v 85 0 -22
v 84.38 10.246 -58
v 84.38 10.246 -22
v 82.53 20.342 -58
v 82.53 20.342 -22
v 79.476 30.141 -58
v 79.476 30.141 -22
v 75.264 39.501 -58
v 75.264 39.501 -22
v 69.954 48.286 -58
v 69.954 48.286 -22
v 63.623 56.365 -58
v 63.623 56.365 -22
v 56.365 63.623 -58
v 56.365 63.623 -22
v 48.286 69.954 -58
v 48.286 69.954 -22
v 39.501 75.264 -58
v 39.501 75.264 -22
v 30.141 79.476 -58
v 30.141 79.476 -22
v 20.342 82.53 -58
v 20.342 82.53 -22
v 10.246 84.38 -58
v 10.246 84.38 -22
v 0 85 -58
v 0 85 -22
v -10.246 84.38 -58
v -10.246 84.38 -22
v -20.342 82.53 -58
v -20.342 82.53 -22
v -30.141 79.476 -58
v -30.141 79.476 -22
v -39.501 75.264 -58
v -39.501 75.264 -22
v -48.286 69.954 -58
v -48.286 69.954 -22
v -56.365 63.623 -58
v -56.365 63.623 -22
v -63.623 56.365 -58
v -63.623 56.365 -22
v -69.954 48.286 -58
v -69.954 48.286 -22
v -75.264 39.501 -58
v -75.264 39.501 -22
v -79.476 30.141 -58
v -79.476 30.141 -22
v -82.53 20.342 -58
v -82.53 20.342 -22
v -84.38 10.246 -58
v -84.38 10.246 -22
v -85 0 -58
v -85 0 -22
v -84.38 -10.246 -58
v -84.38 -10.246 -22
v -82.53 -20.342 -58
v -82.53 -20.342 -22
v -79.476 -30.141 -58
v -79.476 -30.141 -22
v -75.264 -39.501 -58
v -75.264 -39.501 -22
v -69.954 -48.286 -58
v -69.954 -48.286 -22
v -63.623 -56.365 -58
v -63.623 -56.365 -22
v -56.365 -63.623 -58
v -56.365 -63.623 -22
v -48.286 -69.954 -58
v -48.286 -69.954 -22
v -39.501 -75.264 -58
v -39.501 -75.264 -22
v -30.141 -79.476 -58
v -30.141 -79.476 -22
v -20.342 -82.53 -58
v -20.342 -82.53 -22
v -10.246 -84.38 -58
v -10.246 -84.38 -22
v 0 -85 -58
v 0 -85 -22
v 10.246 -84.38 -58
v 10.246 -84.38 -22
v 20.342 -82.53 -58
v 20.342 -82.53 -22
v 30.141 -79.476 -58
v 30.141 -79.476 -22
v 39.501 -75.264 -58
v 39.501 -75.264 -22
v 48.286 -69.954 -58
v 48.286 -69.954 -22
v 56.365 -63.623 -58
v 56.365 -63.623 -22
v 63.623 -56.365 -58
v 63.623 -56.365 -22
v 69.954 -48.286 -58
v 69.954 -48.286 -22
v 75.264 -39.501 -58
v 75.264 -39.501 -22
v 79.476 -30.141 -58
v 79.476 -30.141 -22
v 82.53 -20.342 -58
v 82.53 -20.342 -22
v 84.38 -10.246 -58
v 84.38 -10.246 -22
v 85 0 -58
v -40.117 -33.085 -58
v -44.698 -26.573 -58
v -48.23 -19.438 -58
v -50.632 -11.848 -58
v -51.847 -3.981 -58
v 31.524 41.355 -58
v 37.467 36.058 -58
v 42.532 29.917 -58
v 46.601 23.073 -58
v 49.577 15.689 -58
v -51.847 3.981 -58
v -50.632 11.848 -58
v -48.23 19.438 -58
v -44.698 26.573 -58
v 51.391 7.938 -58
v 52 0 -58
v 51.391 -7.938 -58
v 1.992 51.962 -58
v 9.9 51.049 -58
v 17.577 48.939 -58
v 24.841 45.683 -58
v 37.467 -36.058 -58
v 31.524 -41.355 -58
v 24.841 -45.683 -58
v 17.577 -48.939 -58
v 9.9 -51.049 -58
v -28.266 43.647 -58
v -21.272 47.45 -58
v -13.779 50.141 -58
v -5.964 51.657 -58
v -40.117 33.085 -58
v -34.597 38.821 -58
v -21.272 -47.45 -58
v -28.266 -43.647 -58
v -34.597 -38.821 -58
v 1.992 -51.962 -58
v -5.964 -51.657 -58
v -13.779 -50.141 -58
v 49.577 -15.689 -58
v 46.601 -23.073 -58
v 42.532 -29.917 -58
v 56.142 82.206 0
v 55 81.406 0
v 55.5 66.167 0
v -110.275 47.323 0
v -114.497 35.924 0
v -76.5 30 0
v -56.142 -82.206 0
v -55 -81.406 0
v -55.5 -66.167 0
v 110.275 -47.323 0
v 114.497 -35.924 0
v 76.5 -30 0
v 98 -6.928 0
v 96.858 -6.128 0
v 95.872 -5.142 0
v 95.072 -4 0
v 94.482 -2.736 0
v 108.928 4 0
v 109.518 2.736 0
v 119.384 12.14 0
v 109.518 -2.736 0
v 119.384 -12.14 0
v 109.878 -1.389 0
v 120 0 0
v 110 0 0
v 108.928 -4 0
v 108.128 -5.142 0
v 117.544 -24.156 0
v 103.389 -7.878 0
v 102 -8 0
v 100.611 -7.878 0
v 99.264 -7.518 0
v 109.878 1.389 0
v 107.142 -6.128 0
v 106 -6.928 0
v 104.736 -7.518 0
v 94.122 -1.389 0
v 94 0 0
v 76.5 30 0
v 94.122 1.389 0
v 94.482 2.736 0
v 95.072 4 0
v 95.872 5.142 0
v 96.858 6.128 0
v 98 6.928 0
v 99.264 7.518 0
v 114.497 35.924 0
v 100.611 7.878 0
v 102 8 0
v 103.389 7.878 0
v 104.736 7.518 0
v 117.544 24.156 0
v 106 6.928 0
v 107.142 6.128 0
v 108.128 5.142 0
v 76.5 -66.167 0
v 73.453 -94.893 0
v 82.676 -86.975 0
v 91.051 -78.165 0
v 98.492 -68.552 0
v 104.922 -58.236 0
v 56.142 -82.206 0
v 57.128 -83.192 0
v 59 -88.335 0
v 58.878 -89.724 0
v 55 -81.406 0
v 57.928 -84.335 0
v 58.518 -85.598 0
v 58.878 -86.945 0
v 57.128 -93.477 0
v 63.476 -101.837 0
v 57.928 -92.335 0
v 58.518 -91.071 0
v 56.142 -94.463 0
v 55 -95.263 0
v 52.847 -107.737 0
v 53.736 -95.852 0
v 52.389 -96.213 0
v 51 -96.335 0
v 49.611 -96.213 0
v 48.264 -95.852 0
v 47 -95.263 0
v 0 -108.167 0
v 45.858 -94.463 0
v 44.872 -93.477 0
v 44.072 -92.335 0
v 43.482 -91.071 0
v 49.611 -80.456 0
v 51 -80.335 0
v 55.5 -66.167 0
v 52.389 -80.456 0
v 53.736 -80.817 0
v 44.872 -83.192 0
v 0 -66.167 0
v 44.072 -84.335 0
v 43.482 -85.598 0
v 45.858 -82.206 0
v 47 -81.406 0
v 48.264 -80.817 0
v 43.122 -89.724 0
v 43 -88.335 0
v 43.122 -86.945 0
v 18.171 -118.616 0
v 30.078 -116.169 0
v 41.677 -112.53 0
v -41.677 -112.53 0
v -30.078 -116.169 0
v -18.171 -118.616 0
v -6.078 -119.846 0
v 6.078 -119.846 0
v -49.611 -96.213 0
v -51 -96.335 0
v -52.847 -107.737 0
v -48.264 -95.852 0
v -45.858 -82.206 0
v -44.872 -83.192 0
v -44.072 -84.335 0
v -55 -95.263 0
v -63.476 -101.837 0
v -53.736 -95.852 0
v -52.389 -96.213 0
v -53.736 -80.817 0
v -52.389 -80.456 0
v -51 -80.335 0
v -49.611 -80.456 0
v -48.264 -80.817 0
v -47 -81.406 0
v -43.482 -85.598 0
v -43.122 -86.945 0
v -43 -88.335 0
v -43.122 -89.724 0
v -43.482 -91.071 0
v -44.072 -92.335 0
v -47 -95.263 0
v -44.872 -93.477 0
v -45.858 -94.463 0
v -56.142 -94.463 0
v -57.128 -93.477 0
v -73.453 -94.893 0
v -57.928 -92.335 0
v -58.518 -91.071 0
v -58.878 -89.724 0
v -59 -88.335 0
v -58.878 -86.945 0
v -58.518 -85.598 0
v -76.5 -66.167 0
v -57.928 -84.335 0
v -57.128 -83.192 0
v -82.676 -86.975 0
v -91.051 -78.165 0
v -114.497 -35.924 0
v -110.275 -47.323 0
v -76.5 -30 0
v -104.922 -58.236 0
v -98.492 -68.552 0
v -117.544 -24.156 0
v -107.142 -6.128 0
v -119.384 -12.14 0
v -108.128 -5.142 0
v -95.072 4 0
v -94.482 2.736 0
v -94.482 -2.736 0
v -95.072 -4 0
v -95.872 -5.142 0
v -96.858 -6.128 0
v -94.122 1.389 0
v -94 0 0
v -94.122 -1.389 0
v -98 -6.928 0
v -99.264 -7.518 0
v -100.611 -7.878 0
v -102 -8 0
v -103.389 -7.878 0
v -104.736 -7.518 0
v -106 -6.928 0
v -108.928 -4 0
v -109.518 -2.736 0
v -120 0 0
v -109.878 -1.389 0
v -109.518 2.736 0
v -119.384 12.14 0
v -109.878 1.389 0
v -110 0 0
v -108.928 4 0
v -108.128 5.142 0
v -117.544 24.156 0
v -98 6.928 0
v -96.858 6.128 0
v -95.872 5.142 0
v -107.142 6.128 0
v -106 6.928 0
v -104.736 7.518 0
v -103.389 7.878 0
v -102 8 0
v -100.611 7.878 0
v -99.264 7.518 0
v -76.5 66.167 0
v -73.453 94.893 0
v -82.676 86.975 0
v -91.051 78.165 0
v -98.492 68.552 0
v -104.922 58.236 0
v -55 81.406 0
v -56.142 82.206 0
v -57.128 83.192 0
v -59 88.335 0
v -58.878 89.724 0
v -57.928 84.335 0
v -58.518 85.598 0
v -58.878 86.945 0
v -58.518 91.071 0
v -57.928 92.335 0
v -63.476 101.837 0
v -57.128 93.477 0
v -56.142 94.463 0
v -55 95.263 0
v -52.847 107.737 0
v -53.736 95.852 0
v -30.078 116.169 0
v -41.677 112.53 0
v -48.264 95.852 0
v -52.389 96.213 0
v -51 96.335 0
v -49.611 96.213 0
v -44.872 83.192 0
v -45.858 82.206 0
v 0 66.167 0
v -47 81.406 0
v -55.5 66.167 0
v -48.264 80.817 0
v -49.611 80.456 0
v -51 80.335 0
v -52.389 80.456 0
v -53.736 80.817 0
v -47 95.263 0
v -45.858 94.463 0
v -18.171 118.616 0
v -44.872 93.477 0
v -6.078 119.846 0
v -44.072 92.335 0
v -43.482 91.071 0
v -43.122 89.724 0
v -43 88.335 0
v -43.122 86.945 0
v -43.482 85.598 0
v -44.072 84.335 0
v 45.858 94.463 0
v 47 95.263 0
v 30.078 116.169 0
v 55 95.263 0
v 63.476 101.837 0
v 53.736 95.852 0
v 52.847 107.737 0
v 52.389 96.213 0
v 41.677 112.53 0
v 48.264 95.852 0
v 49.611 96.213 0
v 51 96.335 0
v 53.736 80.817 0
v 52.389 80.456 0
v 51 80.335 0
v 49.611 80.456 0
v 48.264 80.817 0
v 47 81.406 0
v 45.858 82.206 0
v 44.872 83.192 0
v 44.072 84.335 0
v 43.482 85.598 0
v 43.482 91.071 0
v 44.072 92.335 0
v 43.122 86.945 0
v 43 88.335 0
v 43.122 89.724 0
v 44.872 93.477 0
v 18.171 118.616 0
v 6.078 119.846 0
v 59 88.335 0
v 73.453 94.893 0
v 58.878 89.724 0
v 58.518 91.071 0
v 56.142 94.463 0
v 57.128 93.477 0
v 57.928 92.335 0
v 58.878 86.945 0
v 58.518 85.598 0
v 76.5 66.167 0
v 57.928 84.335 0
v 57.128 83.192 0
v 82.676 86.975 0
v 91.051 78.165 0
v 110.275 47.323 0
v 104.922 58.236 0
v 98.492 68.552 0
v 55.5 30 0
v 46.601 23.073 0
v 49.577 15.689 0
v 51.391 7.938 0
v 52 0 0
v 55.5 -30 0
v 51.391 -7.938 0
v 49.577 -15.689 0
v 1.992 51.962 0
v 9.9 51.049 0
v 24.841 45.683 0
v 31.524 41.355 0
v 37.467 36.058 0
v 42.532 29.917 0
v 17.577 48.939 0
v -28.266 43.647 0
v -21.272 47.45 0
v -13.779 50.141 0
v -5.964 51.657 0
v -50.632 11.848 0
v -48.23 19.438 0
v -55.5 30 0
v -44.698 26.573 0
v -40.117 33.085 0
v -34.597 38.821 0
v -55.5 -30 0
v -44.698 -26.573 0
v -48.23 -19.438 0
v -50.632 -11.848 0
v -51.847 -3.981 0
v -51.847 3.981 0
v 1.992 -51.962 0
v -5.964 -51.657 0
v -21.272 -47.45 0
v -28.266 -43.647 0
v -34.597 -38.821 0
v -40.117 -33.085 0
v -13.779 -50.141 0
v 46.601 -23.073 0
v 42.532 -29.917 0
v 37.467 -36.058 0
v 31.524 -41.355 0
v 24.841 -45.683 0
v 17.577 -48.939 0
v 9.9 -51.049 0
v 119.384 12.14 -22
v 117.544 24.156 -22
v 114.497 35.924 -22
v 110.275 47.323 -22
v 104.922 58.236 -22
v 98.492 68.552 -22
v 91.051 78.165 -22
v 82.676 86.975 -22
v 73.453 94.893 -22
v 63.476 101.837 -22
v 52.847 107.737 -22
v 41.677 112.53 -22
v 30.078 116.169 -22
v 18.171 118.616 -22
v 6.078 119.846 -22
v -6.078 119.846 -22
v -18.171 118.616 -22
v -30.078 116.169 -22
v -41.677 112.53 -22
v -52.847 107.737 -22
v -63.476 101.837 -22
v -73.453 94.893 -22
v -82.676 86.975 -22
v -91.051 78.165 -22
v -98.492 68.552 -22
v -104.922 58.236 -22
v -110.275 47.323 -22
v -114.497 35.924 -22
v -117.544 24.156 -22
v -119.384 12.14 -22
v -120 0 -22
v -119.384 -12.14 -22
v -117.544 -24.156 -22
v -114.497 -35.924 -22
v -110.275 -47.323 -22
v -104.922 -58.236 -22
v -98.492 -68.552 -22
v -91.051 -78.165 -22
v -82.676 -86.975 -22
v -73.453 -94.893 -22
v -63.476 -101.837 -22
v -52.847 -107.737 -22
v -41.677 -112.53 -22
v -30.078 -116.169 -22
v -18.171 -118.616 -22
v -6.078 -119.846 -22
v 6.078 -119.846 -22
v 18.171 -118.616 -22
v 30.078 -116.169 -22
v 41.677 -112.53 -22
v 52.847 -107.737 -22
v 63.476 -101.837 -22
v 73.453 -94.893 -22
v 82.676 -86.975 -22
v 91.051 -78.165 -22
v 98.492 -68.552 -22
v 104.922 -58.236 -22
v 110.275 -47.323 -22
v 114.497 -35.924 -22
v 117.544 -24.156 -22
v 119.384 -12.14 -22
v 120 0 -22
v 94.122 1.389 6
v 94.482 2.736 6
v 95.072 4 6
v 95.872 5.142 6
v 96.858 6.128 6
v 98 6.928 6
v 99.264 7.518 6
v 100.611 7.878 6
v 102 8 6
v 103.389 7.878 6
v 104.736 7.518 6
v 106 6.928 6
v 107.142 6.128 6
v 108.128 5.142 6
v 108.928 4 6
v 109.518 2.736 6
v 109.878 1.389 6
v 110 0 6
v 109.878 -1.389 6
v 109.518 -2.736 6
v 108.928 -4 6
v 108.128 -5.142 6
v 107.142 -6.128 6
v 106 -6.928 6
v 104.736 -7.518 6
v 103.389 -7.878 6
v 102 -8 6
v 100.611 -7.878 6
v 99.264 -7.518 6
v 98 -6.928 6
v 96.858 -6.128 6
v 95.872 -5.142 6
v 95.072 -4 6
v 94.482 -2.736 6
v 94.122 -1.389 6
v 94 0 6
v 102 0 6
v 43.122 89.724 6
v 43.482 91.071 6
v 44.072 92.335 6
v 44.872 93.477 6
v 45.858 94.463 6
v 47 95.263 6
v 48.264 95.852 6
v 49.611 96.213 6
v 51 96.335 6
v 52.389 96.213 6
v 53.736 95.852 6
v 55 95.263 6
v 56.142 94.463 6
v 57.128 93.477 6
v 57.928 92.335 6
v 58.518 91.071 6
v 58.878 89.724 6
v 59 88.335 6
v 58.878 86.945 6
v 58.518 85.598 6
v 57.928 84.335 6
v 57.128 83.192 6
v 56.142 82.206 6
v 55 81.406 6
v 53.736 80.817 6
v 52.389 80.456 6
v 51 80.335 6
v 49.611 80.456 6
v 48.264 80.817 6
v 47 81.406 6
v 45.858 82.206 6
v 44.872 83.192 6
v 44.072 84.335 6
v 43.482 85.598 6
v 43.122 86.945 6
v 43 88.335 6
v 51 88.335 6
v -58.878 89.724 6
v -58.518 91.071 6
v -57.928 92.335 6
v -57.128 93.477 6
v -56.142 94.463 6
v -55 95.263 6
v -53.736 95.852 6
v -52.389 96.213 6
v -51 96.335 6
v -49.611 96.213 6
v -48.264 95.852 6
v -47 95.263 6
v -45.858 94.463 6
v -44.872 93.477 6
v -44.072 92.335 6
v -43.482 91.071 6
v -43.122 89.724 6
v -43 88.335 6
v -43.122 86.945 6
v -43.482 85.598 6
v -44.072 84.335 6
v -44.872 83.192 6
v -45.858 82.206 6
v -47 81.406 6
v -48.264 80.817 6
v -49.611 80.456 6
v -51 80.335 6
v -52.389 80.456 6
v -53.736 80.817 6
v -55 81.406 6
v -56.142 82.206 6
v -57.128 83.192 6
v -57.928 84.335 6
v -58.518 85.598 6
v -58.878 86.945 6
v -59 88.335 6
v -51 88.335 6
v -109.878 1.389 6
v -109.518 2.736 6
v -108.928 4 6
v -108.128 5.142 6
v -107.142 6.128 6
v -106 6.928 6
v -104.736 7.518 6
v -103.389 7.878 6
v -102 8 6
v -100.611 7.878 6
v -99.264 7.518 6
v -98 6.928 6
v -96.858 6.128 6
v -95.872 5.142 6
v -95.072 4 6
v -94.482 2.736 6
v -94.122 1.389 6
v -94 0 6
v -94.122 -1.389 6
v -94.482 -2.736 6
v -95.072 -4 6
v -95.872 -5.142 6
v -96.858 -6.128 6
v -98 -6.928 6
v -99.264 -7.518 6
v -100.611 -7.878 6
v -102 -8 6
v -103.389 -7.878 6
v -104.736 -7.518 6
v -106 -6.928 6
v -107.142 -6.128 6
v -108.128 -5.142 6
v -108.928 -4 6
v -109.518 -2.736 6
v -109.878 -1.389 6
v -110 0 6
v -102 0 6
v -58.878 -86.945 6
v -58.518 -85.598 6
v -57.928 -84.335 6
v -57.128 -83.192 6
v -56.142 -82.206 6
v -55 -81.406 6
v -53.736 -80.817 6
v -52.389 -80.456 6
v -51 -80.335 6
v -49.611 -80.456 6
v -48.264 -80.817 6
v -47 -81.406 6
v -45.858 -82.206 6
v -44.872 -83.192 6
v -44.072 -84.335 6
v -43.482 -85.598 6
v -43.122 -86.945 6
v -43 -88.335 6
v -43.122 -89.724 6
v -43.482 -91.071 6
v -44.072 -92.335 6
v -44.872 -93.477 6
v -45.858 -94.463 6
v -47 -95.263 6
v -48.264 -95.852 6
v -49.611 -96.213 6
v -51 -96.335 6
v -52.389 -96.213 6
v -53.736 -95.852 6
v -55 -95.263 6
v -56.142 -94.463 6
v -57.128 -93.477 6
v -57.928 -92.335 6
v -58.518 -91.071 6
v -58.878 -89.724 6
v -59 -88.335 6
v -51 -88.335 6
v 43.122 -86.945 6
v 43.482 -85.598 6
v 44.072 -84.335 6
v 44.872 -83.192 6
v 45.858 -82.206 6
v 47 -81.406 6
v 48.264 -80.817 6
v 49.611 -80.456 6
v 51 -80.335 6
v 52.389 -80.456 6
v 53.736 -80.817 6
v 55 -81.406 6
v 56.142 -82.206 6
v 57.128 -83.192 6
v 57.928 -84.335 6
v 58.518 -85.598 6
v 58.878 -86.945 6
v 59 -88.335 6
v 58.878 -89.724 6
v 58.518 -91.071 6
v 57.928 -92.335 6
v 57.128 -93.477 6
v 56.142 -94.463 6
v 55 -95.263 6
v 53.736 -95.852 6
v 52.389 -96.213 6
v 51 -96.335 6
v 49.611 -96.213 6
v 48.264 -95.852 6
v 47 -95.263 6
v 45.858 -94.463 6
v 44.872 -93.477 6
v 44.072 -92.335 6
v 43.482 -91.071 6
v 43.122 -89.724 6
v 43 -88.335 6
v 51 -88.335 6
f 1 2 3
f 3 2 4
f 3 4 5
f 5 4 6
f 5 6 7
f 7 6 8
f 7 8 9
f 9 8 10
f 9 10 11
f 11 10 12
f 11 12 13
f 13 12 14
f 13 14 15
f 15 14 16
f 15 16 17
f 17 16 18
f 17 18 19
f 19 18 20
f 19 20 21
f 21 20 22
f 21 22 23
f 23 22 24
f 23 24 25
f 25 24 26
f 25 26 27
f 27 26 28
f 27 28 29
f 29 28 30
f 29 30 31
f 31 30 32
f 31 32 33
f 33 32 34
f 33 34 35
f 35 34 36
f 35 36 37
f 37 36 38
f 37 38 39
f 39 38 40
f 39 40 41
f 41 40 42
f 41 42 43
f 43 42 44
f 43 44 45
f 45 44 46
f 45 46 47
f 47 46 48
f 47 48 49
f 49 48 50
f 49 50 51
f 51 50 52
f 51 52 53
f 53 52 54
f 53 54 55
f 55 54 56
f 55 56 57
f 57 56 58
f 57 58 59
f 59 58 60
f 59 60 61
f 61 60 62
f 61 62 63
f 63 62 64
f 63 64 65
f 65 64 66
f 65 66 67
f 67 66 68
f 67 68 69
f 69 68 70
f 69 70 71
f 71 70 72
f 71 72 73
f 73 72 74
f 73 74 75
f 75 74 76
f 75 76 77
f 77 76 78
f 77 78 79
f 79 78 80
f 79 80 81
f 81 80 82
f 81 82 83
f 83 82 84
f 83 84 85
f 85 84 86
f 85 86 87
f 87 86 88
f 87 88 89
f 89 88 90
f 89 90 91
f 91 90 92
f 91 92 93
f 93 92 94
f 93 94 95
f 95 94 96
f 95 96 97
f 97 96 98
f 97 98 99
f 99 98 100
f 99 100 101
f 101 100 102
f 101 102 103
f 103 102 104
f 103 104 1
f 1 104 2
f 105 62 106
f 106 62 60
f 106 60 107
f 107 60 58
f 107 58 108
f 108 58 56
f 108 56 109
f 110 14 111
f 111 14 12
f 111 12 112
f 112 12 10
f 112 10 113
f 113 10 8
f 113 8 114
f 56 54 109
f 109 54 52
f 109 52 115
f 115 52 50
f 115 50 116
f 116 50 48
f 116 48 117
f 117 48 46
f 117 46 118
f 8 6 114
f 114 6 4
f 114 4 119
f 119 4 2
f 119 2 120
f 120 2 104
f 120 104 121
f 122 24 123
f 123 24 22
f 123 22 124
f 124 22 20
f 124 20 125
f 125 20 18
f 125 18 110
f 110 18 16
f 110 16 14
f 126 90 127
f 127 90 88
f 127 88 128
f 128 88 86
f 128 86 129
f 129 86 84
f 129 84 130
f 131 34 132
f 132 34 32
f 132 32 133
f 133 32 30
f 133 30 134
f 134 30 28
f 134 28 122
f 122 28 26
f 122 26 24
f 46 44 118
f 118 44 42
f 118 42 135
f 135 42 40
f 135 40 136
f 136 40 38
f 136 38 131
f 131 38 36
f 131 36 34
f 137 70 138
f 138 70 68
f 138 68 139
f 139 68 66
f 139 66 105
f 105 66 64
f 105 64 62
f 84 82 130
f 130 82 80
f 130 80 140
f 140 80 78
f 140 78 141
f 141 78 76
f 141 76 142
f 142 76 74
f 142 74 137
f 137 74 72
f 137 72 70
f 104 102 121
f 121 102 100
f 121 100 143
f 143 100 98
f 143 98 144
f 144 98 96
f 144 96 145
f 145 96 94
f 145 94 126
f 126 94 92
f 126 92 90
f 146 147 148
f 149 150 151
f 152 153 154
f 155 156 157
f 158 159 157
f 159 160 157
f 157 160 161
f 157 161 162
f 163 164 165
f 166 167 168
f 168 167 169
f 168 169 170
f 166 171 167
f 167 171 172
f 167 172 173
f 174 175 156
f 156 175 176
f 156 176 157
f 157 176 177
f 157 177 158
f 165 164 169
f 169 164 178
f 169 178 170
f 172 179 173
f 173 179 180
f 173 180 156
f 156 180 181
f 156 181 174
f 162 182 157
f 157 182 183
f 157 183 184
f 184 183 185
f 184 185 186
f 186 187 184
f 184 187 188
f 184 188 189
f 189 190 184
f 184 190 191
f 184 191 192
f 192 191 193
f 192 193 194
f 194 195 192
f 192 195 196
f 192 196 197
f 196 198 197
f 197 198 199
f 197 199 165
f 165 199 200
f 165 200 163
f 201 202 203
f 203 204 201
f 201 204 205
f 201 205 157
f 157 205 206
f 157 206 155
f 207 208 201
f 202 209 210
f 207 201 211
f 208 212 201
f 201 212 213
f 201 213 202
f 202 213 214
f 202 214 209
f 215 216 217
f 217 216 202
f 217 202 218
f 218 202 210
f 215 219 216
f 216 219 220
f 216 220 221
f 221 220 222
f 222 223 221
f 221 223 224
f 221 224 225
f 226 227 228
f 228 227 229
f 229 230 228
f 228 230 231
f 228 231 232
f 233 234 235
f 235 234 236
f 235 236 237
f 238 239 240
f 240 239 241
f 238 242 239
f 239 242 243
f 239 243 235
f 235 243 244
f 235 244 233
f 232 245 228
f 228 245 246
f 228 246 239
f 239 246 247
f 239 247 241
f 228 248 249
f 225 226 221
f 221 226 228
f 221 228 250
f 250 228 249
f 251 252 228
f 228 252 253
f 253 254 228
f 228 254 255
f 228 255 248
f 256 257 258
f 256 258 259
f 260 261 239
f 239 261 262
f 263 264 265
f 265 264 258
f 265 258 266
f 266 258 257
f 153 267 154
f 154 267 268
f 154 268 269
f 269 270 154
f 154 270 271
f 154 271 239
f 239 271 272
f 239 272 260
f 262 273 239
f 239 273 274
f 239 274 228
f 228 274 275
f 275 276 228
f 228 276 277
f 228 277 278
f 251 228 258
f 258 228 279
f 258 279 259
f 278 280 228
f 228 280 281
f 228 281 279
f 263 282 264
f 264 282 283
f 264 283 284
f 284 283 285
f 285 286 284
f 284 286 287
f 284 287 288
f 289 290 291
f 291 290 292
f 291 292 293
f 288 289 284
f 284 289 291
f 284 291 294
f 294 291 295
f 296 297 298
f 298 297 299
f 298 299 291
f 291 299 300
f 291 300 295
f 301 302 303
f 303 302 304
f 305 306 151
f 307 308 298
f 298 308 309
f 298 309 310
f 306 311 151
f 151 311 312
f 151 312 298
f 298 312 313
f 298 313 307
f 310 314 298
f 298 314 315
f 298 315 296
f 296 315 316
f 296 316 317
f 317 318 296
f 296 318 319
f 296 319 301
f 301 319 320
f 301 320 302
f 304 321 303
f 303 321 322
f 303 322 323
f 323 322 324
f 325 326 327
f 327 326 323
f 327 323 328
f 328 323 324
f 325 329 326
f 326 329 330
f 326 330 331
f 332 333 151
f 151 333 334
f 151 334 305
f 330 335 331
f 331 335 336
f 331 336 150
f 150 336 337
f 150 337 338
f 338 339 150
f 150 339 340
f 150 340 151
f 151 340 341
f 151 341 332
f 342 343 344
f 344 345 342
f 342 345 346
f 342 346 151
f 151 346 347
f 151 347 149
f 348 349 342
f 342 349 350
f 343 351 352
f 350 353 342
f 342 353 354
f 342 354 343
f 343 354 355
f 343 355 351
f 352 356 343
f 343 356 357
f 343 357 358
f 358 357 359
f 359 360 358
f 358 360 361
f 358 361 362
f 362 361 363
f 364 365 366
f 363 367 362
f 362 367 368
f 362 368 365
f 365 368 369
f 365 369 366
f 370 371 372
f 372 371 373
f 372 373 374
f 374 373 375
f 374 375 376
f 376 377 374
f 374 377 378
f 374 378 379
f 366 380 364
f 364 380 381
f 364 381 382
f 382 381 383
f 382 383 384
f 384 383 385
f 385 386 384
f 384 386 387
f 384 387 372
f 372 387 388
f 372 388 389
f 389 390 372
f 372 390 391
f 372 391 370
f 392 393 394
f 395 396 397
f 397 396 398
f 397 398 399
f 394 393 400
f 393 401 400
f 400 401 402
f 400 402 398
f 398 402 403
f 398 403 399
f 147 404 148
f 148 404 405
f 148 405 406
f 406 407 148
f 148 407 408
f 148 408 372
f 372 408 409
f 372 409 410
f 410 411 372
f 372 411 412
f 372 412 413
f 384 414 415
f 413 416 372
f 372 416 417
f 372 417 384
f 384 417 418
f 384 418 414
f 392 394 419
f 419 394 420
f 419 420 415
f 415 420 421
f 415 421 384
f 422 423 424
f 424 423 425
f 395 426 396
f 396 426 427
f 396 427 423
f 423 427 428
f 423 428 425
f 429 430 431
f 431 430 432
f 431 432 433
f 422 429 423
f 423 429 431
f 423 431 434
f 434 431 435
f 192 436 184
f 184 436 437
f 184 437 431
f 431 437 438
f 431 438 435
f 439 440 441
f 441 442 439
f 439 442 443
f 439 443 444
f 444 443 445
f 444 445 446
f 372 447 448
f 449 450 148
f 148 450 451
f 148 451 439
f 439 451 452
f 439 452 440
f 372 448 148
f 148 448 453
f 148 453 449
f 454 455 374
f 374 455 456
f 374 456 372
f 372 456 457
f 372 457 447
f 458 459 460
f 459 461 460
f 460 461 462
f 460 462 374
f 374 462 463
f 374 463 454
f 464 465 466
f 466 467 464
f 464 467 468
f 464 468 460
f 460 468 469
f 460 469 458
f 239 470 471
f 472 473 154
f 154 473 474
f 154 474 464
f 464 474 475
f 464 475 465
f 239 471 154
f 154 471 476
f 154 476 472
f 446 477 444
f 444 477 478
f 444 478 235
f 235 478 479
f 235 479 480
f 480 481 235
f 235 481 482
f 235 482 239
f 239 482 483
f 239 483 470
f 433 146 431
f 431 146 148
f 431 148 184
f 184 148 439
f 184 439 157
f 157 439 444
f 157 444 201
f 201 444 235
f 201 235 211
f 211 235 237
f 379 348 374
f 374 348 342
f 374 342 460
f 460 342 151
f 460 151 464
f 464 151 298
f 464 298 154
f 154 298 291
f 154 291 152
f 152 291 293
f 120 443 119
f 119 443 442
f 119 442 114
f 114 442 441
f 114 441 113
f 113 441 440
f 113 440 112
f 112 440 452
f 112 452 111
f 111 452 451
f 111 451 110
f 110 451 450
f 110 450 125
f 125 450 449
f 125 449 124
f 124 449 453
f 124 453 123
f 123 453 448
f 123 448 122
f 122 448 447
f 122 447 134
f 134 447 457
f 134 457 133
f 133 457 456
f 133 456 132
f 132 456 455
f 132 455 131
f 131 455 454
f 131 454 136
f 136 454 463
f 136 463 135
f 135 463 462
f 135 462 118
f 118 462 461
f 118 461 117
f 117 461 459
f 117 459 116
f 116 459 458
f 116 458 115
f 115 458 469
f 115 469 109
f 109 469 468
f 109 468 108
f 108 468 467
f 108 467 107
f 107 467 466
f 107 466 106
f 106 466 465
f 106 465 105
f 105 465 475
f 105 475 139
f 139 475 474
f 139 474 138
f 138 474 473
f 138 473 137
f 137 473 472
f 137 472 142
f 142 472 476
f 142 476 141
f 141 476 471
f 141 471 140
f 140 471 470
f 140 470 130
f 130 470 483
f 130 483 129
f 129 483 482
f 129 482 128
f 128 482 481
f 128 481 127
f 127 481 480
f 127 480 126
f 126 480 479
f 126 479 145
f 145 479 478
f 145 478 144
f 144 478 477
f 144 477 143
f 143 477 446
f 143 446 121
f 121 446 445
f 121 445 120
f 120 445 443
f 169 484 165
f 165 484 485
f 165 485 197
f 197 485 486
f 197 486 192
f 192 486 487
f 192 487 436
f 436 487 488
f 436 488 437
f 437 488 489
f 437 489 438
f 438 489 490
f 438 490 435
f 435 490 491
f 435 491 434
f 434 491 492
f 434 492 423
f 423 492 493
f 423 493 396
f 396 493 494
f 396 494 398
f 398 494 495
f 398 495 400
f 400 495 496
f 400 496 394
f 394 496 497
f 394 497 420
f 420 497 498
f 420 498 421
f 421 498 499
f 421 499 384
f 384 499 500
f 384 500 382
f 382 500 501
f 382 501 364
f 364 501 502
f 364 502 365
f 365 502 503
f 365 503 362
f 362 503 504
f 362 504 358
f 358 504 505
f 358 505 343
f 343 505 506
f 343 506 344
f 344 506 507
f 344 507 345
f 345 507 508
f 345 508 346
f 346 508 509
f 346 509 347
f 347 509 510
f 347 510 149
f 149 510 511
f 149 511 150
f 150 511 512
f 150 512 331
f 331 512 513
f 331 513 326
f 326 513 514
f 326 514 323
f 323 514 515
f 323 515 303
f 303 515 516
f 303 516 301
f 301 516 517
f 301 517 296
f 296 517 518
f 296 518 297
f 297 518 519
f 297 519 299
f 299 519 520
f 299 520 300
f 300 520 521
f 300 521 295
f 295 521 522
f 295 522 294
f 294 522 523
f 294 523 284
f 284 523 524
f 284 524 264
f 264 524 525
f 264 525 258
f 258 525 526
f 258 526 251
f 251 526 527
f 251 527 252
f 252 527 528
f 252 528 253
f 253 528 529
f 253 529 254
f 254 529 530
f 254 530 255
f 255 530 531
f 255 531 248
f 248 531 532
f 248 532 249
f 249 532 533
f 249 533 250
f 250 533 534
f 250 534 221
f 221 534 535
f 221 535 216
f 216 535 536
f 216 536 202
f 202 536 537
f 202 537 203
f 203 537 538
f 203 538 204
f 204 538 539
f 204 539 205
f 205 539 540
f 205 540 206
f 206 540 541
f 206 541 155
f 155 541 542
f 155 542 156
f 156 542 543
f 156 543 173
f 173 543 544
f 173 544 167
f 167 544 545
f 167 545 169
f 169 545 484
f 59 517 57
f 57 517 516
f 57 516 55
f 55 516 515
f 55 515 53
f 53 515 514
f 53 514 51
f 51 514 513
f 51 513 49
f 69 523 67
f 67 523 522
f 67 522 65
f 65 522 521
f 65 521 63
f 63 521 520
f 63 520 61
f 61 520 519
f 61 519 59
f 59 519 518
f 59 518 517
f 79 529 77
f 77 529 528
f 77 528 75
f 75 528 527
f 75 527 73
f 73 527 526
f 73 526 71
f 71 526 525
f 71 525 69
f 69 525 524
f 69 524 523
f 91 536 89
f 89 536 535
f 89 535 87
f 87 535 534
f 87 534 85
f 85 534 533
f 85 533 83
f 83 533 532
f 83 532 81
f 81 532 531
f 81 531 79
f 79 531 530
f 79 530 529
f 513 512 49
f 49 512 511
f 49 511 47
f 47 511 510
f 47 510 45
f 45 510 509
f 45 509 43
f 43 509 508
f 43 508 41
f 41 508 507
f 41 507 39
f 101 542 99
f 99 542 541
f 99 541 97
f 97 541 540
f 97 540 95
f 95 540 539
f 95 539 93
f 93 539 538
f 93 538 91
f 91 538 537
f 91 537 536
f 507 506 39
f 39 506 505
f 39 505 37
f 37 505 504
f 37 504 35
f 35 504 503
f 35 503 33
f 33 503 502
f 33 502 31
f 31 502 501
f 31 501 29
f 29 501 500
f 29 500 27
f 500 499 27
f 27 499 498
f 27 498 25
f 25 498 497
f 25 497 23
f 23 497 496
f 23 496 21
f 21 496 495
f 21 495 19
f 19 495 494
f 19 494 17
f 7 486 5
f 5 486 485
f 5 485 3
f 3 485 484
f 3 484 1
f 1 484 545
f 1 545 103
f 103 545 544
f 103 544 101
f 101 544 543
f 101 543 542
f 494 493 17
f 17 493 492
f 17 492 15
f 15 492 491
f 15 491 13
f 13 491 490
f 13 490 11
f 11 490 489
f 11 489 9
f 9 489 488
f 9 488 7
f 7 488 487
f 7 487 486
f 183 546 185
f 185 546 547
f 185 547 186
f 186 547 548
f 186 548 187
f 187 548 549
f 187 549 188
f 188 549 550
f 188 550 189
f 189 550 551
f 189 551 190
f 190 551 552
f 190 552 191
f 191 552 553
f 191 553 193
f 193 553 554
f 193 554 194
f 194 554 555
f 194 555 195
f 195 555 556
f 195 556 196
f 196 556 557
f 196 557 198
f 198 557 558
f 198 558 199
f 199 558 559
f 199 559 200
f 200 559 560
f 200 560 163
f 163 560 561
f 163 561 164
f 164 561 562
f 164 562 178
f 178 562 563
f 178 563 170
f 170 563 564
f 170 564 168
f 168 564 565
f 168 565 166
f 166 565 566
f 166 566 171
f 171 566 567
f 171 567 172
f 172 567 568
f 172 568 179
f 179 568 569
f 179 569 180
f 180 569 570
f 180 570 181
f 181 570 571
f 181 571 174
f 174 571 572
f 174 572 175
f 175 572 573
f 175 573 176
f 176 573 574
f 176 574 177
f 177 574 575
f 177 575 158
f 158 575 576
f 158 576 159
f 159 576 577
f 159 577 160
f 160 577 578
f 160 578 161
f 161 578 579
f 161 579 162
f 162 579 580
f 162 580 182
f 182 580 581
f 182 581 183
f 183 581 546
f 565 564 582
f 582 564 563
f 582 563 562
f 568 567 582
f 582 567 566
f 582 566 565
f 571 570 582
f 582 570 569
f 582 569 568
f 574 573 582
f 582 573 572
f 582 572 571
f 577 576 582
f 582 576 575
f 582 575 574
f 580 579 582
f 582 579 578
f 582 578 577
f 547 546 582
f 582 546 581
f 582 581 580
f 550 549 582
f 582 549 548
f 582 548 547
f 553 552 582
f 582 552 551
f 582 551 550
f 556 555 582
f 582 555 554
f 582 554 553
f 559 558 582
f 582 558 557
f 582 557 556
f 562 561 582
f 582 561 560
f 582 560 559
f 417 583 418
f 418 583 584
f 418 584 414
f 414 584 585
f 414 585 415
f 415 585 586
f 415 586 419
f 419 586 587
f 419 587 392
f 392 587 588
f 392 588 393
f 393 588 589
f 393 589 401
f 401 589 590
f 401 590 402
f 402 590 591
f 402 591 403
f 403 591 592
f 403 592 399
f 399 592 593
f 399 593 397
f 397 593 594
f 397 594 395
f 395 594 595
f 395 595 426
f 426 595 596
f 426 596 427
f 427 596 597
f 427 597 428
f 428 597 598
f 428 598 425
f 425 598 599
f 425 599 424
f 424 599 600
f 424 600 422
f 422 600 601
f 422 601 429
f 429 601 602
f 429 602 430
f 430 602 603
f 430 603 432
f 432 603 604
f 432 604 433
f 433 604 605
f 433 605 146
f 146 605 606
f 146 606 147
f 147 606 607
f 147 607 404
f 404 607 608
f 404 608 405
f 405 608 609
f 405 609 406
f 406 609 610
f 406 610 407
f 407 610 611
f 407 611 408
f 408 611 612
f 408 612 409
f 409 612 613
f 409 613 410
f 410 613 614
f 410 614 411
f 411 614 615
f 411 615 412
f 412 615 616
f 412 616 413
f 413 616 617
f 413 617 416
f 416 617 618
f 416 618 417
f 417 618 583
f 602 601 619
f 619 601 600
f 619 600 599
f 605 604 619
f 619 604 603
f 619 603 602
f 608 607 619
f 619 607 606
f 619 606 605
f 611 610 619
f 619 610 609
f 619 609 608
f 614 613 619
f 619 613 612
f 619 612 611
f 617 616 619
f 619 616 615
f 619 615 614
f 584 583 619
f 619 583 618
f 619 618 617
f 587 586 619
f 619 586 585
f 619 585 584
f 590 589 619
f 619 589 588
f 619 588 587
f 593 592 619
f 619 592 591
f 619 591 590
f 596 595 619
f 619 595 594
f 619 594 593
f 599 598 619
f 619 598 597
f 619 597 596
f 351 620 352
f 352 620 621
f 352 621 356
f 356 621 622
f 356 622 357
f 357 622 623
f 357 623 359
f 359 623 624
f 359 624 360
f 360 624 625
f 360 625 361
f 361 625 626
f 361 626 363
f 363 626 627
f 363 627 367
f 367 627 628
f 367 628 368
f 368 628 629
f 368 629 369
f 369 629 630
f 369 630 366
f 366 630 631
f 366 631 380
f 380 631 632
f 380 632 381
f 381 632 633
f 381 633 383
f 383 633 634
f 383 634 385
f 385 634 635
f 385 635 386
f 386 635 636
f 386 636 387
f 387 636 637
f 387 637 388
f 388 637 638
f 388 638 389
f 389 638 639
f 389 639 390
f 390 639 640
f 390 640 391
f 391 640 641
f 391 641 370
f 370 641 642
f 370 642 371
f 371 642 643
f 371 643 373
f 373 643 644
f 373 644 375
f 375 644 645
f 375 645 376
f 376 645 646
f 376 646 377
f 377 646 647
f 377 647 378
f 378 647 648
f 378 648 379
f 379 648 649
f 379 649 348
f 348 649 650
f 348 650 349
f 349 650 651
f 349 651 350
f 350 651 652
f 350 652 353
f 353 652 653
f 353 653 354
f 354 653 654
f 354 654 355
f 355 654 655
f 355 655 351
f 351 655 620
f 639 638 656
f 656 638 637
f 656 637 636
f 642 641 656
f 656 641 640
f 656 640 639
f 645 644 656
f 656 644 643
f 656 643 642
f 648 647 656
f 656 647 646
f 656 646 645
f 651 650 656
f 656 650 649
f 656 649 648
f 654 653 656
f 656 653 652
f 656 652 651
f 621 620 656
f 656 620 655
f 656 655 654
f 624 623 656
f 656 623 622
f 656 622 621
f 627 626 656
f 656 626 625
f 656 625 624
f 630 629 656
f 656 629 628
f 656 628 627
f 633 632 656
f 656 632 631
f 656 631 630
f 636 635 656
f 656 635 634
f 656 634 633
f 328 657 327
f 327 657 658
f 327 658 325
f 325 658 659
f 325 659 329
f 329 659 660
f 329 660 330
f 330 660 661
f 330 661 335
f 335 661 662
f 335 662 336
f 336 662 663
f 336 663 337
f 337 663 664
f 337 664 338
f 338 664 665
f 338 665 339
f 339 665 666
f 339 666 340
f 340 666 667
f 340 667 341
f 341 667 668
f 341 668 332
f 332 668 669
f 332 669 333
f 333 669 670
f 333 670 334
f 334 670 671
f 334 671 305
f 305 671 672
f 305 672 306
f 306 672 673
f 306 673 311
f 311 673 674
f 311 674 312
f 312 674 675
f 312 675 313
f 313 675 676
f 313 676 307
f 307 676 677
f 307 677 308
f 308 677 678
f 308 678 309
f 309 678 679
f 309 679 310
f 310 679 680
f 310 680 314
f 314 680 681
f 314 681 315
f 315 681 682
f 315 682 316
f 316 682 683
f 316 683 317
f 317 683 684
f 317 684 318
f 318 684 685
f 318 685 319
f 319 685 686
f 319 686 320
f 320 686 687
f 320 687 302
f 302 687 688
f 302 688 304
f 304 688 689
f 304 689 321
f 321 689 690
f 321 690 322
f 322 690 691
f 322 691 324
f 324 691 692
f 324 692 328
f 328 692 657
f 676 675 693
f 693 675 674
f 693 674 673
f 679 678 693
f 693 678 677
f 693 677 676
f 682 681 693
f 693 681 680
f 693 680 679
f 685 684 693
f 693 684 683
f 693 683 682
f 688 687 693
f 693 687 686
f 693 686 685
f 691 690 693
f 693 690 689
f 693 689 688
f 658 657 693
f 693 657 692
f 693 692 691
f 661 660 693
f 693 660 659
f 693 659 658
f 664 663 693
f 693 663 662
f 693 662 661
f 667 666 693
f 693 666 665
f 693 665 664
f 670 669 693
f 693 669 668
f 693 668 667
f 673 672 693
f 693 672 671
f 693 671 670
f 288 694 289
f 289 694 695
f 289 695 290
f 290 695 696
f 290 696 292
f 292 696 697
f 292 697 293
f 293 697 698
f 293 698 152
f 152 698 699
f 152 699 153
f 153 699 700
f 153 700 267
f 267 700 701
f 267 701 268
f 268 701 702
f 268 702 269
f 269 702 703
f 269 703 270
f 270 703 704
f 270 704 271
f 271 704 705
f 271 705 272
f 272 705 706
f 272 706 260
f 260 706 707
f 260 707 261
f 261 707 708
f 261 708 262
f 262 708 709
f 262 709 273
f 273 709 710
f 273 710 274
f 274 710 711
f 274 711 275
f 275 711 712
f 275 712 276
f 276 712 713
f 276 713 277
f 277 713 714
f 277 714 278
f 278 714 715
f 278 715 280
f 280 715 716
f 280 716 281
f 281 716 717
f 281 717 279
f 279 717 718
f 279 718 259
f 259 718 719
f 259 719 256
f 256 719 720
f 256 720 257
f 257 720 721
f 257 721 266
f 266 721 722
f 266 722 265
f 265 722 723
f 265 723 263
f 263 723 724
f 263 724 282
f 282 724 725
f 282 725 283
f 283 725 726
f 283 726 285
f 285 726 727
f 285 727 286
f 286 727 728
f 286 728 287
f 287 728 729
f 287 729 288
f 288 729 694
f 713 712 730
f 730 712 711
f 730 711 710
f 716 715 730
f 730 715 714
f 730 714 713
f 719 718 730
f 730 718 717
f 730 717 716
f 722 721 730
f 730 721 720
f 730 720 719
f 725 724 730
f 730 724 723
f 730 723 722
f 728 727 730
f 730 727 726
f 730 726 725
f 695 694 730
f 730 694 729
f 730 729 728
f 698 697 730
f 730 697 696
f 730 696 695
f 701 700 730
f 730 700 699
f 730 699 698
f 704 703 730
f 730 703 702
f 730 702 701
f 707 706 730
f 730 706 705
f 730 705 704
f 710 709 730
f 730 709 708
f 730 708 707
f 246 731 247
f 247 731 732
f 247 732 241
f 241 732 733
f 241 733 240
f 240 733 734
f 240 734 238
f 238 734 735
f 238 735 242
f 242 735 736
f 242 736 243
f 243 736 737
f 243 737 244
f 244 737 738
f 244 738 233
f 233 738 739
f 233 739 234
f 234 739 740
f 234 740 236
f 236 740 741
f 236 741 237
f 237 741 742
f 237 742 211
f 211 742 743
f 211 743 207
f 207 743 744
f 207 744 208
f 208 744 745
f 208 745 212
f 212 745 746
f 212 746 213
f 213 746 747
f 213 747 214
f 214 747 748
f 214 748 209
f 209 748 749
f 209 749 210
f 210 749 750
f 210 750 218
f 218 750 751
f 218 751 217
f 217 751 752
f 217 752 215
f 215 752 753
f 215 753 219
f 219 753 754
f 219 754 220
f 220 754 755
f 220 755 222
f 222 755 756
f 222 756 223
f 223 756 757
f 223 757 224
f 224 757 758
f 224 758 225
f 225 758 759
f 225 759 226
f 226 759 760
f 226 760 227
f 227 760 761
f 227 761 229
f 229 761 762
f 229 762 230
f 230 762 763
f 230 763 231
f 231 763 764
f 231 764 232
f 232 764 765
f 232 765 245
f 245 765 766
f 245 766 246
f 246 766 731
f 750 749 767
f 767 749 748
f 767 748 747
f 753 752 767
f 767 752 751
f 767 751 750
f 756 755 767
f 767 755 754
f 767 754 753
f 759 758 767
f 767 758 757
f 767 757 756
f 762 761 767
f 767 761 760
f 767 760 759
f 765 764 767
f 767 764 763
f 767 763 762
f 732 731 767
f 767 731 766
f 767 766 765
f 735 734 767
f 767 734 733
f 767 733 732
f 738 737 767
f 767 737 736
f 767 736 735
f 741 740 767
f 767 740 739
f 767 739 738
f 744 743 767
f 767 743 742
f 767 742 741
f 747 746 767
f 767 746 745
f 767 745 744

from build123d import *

# Parameters (mm, degrees)
SKETCH_1_R      = 85
SKETCH_1_R_2    = 52
EXTRUDE_1_DEPTH = 58
SKETCH_2_R      = 120
SKETCH_2_R_2    = 85
EXTRUDE_2_DEPTH = 22
SKETCH_3_R      = 8
EXTRUDE_3_DEPTH = 6


with BuildPart() as part:
    # 草图1 → 凸台-拉伸1 (new body)
    with BuildSketch(Plane.XY):
        Circle(SKETCH_1_R)
        Circle(SKETCH_1_R_2, mode=Mode.SUBTRACT)
    extrude(amount=-EXTRUDE_1_DEPTH)

    # 草图2 → 凸台-拉伸2 (add)
    with BuildSketch(Plane.XY):
        Circle(SKETCH_2_R)
        Circle(SKETCH_2_R_2, mode=Mode.SUBTRACT)
    extrude(amount=-EXTRUDE_2_DEPTH)

    # 草图3 → 凸台-拉伸3 (add)
    with BuildSketch(Plane.XY):
        with Locations((102, 0)):
            Circle(SKETCH_3_R)
        with Locations((51, 88.334591186)):
            Circle(SKETCH_3_R)
        with Locations((-51, 88.334591186)):
            Circle(SKETCH_3_R)
        with Locations((-102, 0)):
            Circle(SKETCH_3_R)
        with Locations((-51, -88.334591186)):
            Circle(SKETCH_3_R)
        with Locations((51, -88.334591186)):
            Circle(SKETCH_3_R)
    extrude(amount=EXTRUDE_3_DEPTH)


solid = part.part
